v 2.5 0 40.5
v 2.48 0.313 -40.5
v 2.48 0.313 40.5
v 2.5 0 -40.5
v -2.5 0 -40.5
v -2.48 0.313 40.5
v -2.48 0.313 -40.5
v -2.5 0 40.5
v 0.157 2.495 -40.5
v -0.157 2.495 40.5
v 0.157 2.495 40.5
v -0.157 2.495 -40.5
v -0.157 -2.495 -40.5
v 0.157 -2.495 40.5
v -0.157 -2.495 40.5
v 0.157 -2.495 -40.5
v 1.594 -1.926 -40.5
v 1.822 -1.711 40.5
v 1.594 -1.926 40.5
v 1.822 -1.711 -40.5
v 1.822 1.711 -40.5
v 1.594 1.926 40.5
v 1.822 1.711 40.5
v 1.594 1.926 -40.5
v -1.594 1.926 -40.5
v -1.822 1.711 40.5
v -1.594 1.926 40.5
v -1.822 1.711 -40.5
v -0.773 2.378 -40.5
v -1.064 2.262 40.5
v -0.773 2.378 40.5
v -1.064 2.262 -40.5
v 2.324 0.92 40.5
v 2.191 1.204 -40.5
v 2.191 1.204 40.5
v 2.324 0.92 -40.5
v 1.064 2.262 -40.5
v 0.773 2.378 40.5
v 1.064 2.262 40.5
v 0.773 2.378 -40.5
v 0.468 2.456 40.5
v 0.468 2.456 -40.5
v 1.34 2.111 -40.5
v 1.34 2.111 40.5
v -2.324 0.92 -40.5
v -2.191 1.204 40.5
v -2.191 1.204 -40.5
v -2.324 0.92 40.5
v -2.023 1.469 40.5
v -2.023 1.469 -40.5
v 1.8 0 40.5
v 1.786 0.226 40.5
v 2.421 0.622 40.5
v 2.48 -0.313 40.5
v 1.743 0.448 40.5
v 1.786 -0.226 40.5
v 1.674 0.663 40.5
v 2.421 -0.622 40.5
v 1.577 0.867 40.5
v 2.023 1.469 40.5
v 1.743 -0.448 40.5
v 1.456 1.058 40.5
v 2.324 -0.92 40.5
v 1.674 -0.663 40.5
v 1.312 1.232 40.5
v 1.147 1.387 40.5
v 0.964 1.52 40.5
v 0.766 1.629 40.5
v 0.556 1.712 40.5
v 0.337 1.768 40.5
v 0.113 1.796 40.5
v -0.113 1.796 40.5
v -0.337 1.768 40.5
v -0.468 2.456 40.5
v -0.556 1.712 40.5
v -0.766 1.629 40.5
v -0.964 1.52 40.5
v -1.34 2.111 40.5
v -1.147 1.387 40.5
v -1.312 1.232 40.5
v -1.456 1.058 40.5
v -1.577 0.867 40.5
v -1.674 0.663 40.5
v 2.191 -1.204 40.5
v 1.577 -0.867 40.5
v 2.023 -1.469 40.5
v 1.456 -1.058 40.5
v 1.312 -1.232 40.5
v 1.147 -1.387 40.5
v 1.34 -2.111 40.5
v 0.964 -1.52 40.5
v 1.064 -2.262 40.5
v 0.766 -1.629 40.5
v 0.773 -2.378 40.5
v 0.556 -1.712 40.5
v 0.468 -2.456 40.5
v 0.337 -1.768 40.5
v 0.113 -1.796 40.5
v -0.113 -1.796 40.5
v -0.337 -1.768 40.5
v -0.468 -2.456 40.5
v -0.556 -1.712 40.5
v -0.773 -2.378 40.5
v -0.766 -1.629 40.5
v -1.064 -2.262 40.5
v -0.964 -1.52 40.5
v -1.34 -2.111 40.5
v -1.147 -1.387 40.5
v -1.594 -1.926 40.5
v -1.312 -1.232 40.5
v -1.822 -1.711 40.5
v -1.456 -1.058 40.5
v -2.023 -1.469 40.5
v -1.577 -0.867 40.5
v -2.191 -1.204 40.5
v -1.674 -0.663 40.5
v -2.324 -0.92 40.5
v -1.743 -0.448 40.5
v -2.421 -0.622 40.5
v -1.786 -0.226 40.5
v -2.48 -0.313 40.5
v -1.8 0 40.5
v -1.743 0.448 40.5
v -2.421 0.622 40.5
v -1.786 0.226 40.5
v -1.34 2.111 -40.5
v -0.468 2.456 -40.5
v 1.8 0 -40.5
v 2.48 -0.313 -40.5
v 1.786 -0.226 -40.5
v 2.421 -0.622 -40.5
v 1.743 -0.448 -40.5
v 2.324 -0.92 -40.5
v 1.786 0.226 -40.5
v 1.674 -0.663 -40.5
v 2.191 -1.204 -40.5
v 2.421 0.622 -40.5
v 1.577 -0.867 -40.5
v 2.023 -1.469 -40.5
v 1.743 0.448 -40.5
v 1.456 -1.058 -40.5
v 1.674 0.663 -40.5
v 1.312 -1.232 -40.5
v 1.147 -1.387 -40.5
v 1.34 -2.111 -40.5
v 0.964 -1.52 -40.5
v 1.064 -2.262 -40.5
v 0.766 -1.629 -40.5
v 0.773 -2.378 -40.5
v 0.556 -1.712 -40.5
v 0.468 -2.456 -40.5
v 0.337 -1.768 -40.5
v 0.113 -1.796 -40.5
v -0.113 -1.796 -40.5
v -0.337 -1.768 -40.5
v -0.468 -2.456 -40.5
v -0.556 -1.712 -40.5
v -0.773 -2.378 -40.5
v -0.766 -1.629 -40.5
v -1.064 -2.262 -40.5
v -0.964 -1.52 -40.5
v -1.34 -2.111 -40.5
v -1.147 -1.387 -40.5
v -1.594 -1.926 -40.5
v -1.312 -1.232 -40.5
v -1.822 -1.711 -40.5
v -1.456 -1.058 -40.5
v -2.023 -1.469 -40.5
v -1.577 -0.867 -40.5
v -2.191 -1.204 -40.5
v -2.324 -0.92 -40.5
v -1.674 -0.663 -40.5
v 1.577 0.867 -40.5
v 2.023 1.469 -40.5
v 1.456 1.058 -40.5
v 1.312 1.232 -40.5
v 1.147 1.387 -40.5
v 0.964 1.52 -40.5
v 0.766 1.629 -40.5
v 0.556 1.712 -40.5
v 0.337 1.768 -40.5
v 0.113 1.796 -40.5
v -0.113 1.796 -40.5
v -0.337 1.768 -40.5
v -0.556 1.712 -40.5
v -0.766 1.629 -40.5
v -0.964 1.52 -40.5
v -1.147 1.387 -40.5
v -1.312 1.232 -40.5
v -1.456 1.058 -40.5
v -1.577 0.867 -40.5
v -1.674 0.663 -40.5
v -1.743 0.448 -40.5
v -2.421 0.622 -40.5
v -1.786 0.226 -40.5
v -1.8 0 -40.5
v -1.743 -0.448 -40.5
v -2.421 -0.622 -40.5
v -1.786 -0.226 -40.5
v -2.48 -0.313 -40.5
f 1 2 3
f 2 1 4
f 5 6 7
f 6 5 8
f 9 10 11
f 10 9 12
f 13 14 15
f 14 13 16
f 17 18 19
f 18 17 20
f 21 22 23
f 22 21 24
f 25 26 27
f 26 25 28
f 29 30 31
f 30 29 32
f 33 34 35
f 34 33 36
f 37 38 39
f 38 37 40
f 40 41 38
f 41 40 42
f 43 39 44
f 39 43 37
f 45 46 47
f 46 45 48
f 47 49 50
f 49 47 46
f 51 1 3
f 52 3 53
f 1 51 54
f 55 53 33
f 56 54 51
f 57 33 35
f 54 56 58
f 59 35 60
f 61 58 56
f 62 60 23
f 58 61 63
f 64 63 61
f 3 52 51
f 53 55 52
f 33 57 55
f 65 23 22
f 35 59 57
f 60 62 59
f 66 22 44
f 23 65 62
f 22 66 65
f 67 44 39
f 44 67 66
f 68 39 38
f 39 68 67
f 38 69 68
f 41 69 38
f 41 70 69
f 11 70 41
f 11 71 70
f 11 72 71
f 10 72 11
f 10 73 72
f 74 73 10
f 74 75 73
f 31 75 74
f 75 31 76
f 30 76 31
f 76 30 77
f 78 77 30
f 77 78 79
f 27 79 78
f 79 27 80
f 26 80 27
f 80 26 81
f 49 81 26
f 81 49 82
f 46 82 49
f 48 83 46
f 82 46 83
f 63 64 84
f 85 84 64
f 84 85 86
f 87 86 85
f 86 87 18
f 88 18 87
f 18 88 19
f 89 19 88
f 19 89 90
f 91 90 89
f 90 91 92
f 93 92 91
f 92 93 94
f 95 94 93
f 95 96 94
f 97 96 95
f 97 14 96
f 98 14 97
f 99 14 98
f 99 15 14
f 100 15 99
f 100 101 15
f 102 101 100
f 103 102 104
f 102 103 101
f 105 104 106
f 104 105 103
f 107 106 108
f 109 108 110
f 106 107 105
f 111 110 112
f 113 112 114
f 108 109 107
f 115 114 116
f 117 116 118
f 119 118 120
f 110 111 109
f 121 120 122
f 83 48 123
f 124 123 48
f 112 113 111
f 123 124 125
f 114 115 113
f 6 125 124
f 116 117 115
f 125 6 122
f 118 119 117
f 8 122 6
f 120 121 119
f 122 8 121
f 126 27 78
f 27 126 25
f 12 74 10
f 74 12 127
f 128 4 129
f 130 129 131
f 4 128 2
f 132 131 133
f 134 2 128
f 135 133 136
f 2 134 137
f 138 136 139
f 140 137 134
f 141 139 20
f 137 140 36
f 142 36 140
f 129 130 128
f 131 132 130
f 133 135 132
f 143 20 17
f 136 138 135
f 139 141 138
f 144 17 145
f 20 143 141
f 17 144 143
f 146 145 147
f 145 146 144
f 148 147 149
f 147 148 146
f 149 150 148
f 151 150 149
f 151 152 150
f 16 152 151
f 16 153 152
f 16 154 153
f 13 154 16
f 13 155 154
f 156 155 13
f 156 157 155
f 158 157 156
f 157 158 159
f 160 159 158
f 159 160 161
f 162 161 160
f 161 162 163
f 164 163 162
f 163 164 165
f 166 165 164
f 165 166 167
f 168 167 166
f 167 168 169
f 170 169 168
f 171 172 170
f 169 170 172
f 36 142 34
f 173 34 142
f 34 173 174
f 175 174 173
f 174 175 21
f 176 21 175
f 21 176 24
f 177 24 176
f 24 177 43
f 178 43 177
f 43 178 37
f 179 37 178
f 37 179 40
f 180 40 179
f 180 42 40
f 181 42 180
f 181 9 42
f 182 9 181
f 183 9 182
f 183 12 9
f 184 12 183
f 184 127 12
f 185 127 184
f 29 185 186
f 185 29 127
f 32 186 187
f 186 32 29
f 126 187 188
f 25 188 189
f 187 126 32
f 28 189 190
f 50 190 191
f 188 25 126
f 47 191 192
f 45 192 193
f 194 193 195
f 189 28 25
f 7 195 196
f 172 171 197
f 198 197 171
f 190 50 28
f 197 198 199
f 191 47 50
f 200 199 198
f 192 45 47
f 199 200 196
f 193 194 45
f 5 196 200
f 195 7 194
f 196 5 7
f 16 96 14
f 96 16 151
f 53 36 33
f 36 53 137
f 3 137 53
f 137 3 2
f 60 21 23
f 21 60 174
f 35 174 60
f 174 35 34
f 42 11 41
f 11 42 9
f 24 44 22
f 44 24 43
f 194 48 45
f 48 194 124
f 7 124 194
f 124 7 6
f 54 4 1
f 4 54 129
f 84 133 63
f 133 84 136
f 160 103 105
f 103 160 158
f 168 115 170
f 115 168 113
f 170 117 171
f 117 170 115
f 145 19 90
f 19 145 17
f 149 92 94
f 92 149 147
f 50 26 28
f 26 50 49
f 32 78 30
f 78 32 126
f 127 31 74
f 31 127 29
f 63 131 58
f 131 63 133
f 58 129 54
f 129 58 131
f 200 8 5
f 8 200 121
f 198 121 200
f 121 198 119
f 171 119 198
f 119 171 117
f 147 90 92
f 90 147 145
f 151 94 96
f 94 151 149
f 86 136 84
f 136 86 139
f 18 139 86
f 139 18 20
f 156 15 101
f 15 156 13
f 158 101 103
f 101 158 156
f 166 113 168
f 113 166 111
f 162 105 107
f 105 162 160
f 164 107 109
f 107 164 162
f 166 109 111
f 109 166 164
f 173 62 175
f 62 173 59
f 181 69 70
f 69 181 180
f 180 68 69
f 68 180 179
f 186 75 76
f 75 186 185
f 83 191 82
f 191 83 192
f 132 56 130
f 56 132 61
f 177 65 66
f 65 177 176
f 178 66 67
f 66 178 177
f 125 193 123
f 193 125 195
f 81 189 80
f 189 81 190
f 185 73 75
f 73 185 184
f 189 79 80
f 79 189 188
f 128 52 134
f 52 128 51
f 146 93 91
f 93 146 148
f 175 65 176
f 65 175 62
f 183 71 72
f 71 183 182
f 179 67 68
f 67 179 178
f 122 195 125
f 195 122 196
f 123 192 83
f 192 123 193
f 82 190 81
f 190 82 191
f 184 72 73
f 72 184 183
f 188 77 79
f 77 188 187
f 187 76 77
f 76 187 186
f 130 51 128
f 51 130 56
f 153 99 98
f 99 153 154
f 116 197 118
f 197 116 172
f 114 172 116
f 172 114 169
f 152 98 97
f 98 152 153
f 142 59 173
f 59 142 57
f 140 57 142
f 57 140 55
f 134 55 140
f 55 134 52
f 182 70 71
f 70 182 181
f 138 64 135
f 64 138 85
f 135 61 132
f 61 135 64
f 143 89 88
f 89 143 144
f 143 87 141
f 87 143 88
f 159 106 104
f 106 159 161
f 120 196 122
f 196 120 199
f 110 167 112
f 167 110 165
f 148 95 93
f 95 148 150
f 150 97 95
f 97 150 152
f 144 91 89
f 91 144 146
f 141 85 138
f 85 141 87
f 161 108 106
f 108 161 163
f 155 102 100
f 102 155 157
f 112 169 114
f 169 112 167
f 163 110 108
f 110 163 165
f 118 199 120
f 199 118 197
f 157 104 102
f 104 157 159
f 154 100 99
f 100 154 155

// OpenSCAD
$fn = 50;


difference() {
	union() {
		translate(v = [0, 0, -40.5000000000]) {
			cylinder(h = 81, r = 2.5000000000);
		}
	}
	union() {
		translate(v = [0, 0, -100.0000000000]) {
			cylinder(h = 200, r = 1.8000000000);
		}
	}
}
